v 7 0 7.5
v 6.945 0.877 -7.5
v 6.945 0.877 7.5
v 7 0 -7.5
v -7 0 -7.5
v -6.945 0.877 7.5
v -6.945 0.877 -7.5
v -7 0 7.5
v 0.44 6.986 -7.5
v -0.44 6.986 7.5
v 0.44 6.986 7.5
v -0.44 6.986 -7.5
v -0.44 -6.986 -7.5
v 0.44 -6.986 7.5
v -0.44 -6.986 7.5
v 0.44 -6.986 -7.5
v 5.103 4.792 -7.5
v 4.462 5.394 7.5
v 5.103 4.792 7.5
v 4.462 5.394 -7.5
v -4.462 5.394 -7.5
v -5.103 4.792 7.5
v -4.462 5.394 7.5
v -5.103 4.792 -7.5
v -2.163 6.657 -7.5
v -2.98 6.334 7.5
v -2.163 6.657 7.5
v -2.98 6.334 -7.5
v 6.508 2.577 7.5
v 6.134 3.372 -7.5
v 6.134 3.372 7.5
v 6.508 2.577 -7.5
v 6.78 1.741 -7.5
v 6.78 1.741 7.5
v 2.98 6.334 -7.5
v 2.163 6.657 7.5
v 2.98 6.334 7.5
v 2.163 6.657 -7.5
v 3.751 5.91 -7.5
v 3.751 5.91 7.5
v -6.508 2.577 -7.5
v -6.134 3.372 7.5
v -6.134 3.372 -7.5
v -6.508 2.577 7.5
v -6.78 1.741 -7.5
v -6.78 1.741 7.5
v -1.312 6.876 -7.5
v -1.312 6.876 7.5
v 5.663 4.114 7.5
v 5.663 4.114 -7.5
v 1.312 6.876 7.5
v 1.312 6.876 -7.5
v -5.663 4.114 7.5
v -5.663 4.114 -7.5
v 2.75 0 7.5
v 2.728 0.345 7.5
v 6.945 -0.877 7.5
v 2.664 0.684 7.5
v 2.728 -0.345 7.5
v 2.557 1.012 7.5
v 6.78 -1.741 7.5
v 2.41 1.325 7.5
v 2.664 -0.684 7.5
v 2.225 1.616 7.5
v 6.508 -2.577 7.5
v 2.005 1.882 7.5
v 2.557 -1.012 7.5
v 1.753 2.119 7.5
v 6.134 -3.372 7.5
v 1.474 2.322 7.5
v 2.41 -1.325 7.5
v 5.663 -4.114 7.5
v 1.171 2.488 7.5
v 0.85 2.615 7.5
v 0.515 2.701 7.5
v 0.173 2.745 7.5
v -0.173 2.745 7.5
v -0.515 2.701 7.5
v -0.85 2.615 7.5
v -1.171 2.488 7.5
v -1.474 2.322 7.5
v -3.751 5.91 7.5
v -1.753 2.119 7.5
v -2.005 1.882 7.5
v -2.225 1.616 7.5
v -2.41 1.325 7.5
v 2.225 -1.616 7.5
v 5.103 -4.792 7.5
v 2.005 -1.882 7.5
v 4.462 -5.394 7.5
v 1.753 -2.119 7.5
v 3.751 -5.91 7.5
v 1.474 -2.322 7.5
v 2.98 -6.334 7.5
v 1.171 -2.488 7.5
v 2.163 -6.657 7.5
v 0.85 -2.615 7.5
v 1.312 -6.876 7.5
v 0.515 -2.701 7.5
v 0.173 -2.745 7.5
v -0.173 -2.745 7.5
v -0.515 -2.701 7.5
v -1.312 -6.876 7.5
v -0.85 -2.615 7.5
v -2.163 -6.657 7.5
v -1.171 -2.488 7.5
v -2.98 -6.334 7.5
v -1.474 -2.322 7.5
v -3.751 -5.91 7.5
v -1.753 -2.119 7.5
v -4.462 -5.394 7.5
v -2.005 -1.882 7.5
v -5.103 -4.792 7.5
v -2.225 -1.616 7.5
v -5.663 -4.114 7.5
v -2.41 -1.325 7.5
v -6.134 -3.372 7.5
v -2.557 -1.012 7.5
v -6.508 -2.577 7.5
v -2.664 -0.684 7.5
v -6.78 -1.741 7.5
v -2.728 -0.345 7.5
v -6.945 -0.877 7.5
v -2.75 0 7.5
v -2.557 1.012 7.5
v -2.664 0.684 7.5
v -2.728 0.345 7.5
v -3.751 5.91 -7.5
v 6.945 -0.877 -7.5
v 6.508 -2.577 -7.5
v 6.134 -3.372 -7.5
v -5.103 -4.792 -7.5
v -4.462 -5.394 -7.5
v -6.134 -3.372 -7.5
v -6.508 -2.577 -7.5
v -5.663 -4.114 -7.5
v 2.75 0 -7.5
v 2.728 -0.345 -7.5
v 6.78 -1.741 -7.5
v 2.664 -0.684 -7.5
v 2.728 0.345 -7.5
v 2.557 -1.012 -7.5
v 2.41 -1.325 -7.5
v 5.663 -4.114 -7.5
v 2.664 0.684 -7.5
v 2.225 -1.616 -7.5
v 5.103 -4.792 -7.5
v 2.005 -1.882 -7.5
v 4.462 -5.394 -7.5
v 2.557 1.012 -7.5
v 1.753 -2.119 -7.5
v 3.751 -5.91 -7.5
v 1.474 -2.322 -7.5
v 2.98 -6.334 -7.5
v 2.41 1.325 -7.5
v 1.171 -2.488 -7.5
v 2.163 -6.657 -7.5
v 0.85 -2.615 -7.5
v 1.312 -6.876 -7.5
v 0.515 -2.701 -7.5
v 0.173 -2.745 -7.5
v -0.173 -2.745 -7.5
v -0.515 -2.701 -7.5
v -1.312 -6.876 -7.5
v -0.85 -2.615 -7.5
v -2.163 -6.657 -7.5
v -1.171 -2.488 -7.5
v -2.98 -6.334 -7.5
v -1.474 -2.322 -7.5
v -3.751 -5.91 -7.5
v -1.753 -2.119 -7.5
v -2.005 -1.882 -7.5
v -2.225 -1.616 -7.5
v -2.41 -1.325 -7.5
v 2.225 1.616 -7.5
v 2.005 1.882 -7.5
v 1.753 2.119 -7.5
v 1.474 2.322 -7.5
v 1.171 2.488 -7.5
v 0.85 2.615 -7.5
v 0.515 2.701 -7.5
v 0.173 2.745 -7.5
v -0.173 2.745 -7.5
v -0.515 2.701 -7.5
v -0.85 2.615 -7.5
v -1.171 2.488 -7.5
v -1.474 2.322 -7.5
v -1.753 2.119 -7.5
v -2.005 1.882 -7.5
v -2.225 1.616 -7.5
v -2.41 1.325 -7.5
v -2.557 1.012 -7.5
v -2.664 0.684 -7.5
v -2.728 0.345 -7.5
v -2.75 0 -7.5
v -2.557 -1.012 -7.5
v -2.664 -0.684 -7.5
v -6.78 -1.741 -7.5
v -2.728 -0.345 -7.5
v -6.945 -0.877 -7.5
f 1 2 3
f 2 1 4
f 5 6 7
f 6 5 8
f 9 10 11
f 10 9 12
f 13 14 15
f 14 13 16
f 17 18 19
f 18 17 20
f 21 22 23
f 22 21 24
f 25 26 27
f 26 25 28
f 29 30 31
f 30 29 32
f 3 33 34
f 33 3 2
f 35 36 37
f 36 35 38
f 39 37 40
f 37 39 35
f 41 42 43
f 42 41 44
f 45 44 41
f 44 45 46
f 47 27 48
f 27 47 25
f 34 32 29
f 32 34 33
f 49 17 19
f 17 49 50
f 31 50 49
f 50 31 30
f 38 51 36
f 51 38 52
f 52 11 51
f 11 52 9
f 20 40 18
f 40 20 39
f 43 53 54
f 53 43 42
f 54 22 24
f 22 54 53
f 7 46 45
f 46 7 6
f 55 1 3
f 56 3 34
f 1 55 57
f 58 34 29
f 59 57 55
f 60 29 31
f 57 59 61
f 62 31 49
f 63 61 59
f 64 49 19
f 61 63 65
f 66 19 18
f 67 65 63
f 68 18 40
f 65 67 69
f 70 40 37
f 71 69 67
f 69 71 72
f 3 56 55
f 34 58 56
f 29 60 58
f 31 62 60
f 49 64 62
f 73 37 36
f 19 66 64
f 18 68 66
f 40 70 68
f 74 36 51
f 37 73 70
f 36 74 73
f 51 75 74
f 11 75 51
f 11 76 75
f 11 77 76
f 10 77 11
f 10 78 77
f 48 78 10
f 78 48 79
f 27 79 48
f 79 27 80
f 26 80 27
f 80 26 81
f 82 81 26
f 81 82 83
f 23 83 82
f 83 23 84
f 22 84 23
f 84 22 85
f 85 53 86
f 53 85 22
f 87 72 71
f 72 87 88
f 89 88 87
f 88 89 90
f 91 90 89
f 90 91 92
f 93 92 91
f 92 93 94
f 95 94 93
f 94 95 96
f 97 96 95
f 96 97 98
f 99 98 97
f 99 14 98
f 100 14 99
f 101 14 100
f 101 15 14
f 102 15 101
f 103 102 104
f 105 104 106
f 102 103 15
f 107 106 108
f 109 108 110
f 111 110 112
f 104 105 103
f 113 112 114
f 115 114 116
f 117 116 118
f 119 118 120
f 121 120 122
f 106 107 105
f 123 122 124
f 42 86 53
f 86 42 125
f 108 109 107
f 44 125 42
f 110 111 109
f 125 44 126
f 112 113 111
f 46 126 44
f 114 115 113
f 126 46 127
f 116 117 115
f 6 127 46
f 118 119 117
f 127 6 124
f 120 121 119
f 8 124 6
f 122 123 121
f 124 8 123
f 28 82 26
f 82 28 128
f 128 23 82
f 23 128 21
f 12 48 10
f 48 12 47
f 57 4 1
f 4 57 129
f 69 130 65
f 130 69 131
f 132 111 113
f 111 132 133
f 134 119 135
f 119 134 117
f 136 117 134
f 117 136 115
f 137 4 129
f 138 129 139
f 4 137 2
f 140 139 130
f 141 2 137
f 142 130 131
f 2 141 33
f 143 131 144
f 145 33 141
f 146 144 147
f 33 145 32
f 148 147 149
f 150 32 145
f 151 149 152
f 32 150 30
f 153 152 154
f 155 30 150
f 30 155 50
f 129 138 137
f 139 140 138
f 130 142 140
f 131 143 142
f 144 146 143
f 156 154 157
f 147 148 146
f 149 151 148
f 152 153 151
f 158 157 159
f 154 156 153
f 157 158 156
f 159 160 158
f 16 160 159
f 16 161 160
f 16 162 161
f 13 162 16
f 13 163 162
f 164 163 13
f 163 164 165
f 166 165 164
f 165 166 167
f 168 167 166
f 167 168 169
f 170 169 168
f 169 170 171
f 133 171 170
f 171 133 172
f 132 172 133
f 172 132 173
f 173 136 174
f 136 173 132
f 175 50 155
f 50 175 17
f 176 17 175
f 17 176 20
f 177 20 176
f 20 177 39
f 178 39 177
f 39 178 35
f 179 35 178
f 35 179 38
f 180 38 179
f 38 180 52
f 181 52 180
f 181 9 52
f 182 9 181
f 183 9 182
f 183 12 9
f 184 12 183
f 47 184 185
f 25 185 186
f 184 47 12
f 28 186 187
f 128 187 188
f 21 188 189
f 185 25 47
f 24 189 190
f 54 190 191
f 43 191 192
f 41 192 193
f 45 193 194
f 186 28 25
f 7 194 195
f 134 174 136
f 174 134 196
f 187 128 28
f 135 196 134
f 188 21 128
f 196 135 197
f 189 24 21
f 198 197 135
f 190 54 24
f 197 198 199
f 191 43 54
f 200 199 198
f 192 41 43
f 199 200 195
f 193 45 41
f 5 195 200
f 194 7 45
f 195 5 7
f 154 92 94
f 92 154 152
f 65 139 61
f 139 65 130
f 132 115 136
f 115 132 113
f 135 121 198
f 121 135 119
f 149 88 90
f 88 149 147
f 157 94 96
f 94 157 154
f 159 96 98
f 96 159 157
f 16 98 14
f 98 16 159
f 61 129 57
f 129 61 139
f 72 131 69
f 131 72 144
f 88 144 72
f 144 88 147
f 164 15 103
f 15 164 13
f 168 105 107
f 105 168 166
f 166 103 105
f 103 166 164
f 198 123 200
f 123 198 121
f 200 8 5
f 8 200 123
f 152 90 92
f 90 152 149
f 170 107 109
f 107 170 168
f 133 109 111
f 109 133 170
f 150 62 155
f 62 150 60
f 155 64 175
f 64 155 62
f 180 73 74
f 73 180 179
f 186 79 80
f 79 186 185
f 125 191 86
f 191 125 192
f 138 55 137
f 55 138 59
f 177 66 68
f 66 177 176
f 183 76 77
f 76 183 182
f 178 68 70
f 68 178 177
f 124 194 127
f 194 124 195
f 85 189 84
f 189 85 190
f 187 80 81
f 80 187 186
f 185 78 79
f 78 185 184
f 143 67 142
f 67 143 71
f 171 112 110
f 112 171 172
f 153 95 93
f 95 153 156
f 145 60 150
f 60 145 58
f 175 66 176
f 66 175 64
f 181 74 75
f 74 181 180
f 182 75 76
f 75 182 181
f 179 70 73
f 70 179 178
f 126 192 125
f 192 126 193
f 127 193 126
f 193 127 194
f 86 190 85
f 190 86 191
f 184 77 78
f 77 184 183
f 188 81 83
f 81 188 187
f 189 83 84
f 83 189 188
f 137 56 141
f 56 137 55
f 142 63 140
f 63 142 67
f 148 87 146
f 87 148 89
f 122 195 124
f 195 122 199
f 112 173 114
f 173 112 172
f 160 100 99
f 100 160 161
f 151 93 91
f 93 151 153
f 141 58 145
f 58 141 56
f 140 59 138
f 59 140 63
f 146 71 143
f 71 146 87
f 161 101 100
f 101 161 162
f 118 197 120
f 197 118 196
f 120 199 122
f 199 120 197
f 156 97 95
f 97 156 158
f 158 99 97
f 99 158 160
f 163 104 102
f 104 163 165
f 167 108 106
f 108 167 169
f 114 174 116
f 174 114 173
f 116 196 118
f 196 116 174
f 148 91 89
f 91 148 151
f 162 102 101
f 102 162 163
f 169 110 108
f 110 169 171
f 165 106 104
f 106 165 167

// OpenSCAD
$fn = 50;


difference() {
	union() {
		translate(v = [0, 0, -7.5000000000]) {
			cylinder(h = 15, r = 7.0000000000);
		}
	}
	union() {
		translate(v = [0, 0, -100.0000000000]) {
			cylinder(h = 200, r = 2.7500000000);
		}
	}
}
